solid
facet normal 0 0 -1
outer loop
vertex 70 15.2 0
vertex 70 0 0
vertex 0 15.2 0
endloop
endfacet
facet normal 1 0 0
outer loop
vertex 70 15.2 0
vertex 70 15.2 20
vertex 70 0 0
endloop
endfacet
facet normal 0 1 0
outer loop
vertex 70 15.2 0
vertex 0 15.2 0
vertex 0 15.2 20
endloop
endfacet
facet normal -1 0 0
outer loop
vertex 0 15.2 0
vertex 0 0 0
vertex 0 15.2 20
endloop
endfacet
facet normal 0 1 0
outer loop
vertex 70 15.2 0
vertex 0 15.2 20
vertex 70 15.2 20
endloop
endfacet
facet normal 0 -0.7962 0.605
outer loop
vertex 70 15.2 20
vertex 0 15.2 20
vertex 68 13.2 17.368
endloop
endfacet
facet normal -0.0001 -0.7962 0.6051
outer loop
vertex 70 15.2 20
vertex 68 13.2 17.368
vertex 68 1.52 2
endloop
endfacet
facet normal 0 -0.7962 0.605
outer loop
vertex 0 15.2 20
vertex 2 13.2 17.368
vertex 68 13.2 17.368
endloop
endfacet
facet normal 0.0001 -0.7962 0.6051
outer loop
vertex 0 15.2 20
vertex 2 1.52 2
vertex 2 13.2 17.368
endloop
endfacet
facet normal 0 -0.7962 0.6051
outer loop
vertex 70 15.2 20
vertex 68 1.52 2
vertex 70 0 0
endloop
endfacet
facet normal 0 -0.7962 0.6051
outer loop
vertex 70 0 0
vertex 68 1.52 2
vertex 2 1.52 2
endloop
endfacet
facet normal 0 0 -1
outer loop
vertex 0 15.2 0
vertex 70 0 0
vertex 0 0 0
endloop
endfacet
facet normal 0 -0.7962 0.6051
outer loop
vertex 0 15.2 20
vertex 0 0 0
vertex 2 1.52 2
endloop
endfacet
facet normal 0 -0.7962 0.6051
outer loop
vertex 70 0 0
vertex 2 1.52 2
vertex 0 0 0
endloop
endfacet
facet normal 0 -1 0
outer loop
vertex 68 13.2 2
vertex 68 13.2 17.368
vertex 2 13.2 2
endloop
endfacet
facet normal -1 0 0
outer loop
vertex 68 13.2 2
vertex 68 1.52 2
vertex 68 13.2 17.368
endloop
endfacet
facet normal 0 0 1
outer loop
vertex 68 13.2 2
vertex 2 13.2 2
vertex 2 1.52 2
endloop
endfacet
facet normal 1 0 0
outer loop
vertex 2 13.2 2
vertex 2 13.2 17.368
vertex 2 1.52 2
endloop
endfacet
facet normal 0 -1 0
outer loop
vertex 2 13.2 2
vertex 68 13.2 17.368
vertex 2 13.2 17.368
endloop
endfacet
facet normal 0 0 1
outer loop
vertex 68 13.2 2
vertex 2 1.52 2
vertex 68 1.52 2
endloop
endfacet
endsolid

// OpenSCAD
base = 15.2;
height = 20;
length = 70;
wall = 2;


module triangle(x, y) {
    polygon([[0, y], [0, 0], [x,0]]);
}

module main_prism() {
    linear_extrude(length)
    triangle(base, height);
}

module diff_block() {
    translate([wall, wall, wall]) 
        cube([base, height, length - wall * 2]);
}

translate([length, base, 0])
rotate([90, 0, -90])
difference() {
    main_prism();
    diff_block();
}
